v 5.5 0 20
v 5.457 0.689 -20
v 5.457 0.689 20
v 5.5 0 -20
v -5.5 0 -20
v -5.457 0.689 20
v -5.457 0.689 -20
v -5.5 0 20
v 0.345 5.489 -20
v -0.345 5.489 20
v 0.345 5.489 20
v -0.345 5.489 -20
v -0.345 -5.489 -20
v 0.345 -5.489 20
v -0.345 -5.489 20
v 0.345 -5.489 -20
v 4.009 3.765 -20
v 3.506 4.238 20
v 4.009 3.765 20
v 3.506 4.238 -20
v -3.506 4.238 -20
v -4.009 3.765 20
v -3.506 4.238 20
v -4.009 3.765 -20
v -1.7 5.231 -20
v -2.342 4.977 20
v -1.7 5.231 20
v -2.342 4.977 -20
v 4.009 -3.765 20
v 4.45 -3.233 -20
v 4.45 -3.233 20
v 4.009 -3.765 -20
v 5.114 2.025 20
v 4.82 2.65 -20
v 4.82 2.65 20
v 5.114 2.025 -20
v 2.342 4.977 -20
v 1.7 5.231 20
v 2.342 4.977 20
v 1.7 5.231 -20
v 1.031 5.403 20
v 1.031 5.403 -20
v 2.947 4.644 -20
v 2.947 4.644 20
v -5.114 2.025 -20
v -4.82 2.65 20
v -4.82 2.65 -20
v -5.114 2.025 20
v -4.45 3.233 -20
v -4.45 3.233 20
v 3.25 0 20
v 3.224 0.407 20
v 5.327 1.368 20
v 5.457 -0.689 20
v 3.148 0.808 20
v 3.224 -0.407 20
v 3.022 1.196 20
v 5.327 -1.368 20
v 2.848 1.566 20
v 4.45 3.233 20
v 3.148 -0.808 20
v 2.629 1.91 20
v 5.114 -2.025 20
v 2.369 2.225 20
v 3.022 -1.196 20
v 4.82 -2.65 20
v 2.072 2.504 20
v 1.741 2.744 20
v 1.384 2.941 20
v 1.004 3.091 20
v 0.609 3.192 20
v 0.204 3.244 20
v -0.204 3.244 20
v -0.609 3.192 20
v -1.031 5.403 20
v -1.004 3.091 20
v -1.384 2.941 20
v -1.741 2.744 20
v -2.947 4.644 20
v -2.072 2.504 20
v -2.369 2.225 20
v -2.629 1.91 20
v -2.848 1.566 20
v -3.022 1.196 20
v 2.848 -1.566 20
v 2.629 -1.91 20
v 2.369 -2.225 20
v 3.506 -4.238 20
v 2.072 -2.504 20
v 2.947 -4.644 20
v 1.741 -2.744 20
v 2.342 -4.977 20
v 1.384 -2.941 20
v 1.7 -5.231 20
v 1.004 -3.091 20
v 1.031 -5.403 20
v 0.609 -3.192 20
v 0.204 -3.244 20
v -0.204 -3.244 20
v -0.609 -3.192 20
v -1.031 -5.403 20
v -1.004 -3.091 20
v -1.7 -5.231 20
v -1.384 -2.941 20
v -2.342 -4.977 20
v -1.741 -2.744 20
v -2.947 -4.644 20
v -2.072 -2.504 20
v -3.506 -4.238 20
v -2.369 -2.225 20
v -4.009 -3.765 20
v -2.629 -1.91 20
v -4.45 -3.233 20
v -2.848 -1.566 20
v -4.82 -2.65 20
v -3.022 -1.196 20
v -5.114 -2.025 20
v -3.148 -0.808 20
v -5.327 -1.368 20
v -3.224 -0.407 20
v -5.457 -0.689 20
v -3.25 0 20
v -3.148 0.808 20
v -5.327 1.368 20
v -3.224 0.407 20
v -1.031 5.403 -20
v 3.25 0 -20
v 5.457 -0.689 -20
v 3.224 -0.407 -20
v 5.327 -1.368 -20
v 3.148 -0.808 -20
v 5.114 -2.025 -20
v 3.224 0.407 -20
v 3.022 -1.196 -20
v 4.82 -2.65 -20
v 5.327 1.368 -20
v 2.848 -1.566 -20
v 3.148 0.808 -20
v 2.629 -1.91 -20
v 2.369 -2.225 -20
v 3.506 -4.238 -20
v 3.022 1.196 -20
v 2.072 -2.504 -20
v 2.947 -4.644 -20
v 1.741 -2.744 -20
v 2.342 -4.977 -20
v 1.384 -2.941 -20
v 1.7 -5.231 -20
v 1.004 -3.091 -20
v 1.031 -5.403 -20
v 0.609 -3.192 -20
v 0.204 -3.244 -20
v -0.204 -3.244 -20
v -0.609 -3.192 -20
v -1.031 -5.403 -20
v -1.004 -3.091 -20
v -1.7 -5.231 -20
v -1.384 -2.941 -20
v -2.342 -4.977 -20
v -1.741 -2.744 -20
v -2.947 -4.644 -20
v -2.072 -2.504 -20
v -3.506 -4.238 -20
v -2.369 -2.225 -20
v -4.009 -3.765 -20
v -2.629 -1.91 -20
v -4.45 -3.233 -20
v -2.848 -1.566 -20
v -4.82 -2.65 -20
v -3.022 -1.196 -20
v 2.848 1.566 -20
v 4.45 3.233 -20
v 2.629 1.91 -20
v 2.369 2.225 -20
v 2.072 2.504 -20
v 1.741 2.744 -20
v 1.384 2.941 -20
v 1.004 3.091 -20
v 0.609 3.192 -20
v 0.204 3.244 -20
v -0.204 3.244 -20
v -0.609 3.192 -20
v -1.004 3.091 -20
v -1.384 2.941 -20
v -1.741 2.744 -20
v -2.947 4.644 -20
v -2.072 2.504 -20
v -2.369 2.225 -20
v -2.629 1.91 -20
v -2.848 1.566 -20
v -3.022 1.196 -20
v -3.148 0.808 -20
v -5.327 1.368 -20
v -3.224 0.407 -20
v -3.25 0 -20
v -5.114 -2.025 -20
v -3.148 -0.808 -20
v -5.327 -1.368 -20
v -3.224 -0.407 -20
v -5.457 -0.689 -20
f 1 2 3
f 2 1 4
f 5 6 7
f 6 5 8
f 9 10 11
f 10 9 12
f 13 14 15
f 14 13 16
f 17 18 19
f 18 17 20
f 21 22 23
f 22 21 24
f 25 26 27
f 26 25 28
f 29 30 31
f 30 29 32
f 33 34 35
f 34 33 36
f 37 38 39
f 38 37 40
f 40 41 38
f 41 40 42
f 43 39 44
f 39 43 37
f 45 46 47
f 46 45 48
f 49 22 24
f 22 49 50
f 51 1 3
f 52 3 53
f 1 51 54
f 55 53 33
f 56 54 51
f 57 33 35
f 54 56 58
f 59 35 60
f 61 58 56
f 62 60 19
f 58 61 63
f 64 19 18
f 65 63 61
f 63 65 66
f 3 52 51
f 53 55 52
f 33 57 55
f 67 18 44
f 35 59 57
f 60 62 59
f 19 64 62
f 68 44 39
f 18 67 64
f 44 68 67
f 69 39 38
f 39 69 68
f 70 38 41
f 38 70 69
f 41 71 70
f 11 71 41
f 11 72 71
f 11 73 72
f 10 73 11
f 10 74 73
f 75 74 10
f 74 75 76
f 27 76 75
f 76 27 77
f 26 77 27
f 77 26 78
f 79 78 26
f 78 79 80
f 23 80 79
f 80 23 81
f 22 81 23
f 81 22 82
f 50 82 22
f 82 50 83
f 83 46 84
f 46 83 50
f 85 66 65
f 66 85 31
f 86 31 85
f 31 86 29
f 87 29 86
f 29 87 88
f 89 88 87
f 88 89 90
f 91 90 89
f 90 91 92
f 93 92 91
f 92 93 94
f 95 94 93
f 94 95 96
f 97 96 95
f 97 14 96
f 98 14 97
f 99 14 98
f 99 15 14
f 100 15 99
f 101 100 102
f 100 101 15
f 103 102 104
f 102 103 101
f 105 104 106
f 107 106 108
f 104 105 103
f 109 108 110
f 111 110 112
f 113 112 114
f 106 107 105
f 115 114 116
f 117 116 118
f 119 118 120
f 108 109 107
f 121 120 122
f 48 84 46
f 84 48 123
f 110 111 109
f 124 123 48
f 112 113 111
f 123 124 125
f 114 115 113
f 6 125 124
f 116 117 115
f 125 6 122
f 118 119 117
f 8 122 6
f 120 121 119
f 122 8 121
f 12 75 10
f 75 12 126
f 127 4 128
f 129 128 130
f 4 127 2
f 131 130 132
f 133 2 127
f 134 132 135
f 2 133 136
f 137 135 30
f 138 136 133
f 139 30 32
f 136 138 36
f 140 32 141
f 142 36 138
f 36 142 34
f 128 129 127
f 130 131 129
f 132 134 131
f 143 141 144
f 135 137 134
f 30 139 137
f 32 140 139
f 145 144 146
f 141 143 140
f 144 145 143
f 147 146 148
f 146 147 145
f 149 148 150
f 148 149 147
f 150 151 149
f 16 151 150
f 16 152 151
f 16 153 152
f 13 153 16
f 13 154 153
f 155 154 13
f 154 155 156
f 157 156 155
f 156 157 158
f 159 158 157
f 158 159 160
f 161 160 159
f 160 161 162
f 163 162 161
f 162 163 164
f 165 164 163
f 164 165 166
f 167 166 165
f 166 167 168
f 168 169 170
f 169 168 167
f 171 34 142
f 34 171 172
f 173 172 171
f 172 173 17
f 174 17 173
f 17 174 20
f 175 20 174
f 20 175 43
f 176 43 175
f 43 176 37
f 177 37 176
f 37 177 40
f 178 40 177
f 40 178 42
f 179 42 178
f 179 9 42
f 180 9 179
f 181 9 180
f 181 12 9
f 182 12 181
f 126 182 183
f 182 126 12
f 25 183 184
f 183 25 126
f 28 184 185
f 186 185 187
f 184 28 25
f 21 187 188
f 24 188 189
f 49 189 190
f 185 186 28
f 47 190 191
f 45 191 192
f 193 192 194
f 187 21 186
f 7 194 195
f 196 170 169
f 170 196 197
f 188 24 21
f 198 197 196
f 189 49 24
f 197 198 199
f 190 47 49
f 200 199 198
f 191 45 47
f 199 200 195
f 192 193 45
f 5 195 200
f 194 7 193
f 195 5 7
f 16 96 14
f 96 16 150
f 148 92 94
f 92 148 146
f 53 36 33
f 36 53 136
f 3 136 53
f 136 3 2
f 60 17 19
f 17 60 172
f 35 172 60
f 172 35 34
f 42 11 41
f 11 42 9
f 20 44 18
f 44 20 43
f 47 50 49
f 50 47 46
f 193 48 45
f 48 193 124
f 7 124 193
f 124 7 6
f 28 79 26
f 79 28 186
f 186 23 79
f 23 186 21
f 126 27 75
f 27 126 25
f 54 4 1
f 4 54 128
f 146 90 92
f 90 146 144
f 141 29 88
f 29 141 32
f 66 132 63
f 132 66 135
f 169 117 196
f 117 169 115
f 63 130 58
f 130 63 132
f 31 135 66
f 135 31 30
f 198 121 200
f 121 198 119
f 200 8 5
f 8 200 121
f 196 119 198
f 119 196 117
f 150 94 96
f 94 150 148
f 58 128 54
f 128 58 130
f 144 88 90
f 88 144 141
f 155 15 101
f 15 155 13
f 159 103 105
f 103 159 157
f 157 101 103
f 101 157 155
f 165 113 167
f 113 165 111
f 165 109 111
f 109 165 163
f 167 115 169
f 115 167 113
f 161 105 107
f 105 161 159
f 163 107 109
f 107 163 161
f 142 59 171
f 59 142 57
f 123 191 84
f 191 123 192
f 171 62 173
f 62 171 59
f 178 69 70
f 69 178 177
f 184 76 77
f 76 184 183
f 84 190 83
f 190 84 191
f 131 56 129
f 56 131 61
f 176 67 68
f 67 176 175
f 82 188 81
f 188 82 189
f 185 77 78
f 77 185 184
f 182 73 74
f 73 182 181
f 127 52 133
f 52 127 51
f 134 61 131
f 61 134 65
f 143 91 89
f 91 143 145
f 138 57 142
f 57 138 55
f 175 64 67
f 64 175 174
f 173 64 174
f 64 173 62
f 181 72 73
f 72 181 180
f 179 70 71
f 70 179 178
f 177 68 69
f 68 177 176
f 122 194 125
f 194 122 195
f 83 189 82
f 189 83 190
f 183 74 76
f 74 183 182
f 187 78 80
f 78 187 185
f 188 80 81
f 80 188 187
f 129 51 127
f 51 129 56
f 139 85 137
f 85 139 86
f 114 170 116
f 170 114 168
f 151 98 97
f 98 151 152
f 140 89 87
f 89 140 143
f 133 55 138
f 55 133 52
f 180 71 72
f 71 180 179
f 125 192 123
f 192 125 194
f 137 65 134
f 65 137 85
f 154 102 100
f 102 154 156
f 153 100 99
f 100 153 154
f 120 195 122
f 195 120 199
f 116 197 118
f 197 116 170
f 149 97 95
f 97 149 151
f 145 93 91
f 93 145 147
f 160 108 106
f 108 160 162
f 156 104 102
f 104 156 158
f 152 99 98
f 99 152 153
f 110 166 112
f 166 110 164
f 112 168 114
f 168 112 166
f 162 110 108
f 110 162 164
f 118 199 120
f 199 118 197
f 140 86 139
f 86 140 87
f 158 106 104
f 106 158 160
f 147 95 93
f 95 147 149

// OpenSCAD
$fn = 50;


difference() {
	union() {
		translate(v = [0, 0, -20.0000000000]) {
			cylinder(h = 40, r = 5.5000000000);
		}
	}
	union() {
		translate(v = [0, 0, -100.0000000000]) {
			cylinder(h = 200, r = 3.2500000000);
		}
	}
}
